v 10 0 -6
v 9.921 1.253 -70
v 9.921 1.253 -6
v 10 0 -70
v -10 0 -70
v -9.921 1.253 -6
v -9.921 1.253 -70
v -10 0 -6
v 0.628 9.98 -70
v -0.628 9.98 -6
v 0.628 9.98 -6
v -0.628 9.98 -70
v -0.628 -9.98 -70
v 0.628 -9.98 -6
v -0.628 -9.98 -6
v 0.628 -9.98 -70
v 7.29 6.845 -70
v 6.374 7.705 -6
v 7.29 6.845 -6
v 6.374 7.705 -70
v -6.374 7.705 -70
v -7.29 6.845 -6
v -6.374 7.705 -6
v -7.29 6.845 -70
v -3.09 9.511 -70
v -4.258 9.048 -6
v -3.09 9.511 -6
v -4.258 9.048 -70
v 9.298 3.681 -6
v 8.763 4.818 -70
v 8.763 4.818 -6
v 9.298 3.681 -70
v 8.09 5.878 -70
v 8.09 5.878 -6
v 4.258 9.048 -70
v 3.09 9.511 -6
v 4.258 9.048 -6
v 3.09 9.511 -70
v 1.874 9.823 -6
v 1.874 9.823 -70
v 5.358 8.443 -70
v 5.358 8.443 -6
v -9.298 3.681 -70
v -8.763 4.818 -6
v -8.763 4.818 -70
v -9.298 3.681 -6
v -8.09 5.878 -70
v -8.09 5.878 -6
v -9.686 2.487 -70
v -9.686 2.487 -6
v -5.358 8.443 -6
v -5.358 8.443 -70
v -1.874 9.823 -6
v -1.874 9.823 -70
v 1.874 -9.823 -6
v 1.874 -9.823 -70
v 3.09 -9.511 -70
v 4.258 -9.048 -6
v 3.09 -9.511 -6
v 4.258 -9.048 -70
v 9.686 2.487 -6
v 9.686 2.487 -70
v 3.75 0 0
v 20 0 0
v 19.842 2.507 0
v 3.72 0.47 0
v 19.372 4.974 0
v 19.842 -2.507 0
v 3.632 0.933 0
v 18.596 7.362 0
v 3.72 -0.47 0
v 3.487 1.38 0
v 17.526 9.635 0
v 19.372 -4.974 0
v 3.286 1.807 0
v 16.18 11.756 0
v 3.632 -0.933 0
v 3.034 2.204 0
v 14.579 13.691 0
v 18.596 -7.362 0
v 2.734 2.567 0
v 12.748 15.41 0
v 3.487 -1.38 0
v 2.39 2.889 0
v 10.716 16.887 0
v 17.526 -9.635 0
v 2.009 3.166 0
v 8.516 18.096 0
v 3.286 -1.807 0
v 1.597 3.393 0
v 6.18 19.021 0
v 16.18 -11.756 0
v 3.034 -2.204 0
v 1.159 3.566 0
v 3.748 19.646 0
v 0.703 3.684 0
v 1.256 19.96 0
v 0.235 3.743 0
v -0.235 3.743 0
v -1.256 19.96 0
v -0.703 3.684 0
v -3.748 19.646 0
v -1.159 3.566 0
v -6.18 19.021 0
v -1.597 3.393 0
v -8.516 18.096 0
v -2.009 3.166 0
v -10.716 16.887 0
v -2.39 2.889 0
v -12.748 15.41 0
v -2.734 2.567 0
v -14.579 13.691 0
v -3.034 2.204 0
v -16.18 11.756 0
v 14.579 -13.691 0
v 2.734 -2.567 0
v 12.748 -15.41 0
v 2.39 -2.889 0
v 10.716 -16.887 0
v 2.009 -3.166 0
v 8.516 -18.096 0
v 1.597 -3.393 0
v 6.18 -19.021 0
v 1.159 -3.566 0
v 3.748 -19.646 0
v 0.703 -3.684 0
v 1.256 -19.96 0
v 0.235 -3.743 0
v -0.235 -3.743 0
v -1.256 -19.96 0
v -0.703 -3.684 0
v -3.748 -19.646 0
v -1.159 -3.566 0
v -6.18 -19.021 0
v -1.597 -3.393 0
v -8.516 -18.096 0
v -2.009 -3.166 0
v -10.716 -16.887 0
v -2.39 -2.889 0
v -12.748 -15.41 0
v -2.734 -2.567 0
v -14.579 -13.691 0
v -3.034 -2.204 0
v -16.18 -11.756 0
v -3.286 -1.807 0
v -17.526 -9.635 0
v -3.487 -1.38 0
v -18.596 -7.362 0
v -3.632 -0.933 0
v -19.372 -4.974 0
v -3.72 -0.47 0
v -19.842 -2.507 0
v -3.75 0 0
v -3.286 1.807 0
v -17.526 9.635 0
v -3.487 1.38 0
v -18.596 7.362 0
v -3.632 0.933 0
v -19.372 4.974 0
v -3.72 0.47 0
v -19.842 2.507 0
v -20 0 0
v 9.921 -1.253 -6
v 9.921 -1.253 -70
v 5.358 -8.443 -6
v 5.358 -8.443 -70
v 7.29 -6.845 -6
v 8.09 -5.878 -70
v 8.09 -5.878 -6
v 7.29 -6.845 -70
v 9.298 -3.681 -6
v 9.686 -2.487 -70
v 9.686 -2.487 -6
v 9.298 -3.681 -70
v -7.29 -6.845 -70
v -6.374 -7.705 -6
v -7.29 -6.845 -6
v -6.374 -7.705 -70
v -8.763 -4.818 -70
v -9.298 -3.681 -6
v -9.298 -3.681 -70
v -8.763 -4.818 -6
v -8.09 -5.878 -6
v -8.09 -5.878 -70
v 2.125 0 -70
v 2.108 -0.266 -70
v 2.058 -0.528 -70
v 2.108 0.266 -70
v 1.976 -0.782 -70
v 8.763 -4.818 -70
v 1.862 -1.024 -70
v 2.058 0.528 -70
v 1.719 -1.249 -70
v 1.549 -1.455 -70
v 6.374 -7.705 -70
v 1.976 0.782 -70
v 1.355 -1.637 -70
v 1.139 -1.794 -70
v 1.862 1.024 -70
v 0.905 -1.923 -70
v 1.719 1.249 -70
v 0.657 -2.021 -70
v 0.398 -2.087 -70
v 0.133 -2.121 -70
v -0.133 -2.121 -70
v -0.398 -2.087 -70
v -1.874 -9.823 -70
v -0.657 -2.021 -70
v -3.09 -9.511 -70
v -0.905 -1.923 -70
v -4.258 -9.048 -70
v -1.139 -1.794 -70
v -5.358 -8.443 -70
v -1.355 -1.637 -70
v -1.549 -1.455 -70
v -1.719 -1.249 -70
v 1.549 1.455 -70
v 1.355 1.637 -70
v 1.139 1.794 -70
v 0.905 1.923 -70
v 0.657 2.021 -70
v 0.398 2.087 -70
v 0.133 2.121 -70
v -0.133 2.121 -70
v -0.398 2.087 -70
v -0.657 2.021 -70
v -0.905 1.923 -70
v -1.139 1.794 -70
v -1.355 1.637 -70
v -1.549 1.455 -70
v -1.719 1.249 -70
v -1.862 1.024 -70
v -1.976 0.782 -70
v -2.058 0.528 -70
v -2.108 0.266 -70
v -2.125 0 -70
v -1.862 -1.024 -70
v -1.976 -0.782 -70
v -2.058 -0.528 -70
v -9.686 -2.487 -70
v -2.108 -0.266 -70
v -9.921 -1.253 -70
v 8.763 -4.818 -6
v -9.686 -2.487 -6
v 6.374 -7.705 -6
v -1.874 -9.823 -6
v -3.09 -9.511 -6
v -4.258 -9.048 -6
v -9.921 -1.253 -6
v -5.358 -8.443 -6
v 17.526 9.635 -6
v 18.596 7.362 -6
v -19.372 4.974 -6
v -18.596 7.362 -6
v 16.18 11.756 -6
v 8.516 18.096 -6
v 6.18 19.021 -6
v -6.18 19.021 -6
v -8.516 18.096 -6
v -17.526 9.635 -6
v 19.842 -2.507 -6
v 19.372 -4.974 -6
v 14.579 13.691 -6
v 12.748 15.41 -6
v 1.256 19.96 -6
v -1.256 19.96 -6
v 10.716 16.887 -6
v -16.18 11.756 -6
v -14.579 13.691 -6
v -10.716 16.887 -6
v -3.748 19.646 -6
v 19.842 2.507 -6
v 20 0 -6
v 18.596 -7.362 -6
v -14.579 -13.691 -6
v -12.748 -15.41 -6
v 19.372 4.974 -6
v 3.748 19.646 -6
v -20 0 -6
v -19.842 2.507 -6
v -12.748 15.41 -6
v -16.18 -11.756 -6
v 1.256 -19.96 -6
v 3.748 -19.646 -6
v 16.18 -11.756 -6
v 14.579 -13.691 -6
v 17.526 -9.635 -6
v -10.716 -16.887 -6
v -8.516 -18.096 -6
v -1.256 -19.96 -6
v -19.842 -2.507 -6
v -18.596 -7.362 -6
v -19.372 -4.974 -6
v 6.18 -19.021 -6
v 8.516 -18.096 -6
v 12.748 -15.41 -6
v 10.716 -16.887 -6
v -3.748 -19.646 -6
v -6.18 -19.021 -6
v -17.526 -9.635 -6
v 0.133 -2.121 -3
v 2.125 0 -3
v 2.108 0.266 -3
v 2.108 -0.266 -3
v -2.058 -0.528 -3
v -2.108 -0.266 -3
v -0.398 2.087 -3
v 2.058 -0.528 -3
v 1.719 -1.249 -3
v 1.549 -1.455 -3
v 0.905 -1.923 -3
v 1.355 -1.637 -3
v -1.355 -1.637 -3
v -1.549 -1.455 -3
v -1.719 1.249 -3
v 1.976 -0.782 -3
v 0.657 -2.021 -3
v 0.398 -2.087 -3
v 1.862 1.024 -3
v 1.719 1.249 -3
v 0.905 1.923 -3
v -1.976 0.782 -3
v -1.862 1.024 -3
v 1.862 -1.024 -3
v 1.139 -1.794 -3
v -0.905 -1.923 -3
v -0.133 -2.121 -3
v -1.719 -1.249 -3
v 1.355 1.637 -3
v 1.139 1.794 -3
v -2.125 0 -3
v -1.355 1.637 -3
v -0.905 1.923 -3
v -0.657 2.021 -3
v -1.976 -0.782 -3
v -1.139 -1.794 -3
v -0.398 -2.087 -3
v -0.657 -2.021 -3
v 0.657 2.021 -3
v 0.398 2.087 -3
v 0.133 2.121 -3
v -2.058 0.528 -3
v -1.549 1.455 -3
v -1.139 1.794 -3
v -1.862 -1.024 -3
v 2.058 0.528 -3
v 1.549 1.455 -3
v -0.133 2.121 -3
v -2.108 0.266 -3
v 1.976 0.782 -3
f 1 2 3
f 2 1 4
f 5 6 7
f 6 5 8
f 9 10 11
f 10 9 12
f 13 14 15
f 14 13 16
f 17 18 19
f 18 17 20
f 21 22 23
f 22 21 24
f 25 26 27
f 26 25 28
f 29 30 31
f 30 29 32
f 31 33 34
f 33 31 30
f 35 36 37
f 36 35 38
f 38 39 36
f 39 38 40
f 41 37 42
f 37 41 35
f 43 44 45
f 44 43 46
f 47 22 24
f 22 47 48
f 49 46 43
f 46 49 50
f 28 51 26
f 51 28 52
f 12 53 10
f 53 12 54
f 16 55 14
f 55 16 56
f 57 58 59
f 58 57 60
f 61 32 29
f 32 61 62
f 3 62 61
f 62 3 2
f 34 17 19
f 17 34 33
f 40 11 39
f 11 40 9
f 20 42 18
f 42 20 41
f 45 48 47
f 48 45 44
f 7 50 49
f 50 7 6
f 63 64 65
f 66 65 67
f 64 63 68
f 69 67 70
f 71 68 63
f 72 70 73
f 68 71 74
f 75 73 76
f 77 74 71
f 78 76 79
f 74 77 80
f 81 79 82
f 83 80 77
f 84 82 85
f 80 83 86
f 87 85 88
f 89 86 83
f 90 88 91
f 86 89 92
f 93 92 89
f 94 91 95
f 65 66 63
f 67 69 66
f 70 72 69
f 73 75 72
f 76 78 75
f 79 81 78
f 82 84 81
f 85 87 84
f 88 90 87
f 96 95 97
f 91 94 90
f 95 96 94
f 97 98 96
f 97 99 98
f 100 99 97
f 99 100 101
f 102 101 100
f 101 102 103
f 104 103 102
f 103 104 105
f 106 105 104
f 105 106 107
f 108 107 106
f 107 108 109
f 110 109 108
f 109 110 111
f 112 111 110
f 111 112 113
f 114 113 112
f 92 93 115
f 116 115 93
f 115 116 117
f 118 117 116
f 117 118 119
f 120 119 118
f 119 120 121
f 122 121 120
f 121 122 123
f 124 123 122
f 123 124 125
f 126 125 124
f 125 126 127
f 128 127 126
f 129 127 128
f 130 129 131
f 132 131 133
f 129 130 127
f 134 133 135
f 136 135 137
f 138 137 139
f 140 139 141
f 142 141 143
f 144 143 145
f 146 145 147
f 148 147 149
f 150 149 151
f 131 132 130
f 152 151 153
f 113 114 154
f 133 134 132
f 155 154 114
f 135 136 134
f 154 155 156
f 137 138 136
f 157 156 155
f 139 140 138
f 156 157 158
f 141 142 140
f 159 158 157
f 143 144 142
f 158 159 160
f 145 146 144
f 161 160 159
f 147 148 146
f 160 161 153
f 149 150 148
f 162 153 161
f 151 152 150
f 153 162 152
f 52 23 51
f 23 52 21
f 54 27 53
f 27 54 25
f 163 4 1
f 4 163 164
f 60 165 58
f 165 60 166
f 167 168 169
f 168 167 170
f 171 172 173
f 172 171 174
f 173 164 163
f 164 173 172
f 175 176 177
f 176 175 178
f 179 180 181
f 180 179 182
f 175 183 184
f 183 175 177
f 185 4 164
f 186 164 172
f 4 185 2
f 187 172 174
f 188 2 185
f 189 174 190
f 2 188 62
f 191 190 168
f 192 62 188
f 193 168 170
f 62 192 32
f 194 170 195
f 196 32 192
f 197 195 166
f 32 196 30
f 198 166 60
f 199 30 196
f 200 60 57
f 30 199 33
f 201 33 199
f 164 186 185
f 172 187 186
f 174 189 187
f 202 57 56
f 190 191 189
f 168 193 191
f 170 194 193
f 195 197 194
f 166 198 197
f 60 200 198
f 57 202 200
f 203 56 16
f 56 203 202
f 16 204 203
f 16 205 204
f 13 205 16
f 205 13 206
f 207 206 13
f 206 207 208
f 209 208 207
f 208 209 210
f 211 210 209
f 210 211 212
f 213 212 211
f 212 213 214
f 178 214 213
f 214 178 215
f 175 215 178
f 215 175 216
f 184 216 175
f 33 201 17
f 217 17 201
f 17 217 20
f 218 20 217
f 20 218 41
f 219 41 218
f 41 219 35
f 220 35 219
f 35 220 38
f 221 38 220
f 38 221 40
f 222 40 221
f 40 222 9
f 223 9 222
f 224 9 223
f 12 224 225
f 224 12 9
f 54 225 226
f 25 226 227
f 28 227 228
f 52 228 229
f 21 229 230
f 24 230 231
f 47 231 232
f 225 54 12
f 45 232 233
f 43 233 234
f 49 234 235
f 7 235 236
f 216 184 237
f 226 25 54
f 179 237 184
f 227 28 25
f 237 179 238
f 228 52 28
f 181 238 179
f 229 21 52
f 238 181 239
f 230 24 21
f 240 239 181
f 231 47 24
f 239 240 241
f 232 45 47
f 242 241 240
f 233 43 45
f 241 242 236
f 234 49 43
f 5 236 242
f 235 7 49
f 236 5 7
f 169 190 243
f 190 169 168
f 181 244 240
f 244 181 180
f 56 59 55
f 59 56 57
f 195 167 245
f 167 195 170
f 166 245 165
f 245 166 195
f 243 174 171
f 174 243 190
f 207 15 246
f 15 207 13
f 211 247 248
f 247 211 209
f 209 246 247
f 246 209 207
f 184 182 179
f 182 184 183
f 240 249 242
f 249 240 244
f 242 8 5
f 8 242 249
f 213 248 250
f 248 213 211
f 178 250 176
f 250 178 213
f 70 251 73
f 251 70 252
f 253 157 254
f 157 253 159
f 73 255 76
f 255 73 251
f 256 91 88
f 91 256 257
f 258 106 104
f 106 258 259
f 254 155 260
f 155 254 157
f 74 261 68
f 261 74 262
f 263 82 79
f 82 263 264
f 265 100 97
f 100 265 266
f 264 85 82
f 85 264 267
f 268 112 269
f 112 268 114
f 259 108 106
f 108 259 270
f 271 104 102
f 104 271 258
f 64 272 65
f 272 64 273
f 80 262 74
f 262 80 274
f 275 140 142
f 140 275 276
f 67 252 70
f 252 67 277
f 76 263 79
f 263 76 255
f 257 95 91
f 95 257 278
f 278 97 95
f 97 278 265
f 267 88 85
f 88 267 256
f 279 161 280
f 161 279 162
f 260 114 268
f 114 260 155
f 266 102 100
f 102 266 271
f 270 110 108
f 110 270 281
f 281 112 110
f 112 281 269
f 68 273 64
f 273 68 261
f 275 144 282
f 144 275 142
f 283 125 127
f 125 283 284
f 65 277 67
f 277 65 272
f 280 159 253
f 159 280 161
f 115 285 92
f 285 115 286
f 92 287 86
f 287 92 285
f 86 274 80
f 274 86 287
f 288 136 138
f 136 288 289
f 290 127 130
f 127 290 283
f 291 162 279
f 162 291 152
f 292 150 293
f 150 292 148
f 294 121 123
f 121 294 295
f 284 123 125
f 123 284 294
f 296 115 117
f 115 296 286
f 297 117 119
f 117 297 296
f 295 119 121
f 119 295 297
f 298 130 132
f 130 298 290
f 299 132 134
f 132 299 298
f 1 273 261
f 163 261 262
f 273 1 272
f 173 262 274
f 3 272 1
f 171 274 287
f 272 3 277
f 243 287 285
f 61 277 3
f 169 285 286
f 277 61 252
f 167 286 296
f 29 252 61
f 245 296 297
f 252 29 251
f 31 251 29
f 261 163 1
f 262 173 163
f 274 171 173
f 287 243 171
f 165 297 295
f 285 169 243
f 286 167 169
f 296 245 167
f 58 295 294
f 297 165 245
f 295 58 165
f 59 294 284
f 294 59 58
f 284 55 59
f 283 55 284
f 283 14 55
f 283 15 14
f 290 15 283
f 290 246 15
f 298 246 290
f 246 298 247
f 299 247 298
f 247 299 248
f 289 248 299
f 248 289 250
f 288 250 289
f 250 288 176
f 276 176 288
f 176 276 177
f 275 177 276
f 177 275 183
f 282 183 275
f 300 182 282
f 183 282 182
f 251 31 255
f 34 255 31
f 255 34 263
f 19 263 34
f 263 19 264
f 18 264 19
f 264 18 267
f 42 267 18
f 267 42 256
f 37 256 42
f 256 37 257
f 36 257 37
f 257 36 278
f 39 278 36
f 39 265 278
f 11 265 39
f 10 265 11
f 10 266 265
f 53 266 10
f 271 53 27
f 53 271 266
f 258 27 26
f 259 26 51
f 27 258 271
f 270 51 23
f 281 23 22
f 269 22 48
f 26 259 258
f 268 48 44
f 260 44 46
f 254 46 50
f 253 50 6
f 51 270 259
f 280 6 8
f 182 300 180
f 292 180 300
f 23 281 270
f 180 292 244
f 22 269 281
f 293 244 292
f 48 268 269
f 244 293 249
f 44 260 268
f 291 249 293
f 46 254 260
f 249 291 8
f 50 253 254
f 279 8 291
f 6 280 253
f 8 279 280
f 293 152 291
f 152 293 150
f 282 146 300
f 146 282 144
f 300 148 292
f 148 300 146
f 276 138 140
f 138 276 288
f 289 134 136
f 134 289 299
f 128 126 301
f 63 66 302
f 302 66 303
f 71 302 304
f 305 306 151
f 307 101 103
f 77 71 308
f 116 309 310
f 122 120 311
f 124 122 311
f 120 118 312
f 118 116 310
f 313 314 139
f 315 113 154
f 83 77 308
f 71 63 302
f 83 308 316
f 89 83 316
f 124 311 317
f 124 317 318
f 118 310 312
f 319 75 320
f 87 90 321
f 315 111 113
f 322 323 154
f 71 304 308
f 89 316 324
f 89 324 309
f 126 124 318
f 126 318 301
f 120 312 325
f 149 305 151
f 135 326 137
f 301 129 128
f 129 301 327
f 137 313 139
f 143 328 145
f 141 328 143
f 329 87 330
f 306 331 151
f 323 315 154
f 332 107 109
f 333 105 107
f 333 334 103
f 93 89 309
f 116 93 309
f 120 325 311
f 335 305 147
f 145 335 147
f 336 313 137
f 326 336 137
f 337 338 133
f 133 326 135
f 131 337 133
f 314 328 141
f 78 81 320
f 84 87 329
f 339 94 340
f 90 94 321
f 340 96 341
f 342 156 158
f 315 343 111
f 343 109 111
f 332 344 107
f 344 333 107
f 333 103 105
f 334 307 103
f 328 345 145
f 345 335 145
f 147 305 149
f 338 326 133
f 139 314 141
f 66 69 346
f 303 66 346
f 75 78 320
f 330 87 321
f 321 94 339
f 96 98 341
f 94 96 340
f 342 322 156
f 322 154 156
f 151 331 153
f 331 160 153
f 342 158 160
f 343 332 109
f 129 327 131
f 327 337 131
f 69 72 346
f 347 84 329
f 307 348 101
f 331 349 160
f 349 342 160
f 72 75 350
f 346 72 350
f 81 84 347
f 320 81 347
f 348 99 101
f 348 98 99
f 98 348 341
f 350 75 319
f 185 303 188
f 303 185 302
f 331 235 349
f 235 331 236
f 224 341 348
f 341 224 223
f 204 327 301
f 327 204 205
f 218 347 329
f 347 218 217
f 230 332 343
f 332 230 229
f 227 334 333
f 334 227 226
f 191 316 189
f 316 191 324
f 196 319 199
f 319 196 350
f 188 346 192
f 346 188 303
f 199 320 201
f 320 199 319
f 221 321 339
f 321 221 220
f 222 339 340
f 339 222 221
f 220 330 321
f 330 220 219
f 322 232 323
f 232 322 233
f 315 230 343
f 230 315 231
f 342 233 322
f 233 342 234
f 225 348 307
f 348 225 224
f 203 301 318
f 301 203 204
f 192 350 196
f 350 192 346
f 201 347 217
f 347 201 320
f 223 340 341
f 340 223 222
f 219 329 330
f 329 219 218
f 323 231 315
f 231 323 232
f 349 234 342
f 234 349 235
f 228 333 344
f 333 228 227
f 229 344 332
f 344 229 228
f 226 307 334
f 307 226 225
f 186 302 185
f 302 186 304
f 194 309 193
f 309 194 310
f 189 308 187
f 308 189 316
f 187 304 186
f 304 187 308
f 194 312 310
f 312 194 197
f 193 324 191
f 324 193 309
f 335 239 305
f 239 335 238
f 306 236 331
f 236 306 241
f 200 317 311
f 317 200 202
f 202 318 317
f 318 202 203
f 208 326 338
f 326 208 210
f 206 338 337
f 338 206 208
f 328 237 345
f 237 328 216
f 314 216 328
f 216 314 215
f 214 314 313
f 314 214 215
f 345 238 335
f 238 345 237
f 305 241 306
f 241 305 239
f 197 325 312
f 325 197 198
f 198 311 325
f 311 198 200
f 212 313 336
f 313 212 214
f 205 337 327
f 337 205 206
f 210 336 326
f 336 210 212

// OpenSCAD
$fn = 50;


difference() {
	union() {
		translate(v = [0, 0, -70.0000000000]) {
			cylinder(h = 70, r = 10.0000000000);
		}
		translate(v = [0, 0, -6.0000000000]) {
			cylinder(h = 6, r = 20.0000000000);
		}
	}
	union() {
		translate(v = [0, 0, 0]) {
			rotate(a = [0, 0, 0]) {
				difference() {
					union() {
						#translate(v = [0, 0, -70.0000000000]) {
							cylinder(h = 70, r = 2.0000000000);
						}
						#translate(v = [0, 0, -3]) {
							cylinder(h = 3, r1 = 2.1250000000, r2 = 3.7500000000);
						}
						#translate(v = [0, 0, -70.0000000000]) {
							cylinder(h = 70, r = 2.1250000000);
						}
						#translate(v = [0, 0, -70.0000000000]) {
							cylinder(h = 70, r = 2.0000000000);
						}
					}
					union();
				}
			}
		}
	}
}
